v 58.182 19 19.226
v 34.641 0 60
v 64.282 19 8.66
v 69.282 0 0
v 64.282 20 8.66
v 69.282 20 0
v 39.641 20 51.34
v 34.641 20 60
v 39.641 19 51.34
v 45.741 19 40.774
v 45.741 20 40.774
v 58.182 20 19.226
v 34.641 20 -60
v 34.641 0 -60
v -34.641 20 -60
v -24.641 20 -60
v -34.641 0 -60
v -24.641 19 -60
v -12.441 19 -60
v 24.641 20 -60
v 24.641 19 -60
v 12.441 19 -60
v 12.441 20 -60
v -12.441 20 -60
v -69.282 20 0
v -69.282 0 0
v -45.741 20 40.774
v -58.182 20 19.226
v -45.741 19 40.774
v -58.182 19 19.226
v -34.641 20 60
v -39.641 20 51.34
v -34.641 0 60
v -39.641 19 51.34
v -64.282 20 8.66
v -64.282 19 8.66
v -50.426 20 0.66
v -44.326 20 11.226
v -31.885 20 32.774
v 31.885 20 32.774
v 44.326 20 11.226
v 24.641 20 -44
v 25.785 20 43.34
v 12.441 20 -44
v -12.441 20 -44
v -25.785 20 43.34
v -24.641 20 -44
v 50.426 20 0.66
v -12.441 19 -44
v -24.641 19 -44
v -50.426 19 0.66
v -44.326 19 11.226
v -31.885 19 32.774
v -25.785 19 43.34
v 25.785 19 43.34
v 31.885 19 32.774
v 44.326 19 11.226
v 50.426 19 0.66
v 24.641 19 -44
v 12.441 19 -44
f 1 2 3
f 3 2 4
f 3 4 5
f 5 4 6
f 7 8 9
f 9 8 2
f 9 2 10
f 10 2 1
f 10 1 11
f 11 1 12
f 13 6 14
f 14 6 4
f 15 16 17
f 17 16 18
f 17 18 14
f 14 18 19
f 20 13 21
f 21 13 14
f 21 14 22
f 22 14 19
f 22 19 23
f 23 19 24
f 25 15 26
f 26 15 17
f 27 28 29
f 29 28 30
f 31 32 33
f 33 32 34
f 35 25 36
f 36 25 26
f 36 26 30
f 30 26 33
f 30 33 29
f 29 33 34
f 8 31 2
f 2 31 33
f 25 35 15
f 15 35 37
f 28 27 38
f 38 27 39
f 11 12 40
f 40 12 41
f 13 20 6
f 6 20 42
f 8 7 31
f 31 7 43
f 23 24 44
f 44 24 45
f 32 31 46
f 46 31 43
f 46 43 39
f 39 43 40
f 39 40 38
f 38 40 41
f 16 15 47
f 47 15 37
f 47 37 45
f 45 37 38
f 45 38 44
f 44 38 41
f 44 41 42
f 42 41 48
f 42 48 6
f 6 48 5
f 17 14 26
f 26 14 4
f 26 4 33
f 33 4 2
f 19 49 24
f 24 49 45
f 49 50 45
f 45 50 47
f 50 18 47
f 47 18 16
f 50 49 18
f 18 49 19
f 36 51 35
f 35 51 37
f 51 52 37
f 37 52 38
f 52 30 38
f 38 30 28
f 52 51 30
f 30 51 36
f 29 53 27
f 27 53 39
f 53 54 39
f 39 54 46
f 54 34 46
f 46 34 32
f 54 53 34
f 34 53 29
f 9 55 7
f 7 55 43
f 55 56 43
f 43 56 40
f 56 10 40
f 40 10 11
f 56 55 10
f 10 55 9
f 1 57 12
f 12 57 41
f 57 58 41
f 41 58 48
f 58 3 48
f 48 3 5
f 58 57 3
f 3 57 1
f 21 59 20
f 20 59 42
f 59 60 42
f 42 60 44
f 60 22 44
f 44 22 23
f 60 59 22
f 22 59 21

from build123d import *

# Parameters (mm, degrees)
BOSS_EXTRUDE1_DEPTH = 20
SKETCH2_W           = 12.2
SKETCH2_H           = 16
CUT_EXTRUDE1_DEPTH  = 1


with BuildPart() as part:
    # Sketch1 → Boss-Extrude1 (new body)
    with BuildSketch(Plane(origin=(0, 0, 0), x_dir=(1, 0, 0), z_dir=(0, 1, 0))):
        Polygon((69.282032303, 0), (34.641016151, 60), (-34.641016151, 60), (-69.282032303, 0), (-34.641016151, -60), (34.641016151, -60), align=None)
    extrude(amount=BOSS_EXTRUDE1_DEPTH)

    # Sketch2 → Cut-Extrude1 (cut)
    with BuildSketch(Plane(origin=(0, 20, 0), x_dir=(1, 0, 0), z_dir=(0, 1, 0))):
        with Locations((-18.541016151, 52)):
            Rectangle(SKETCH2_W, SKETCH2_H)
        with Locations((18.541016151, 52)):
            Rectangle(SKETCH2_W, SKETCH2_H)
        Polygon((64.282032303, -8.660254038), (50.425625842, -0.660254038), (44.325625842, -11.225763964), (58.182032303, -19.225763964), align=None)
        Polygon((45.741016151, -40.774236036), (31.884609691, -32.774236036), (25.784609691, -43.339745962), (39.641016151, -51.339745962), align=None)
        Polygon((-39.641016151, -51.339745962), (-25.784609691, -43.339745962), (-31.884609691, -32.774236036), (-45.741016151, -40.774236036), align=None)
        Polygon((-58.182032303, -19.225763964), (-44.325625842, -11.225763964), (-50.425625842, -0.660254038), (-64.282032303, -8.660254038), align=None)
    extrude(amount=-CUT_EXTRUDE1_DEPTH, mode=Mode.SUBTRACT)


solid = part.part
